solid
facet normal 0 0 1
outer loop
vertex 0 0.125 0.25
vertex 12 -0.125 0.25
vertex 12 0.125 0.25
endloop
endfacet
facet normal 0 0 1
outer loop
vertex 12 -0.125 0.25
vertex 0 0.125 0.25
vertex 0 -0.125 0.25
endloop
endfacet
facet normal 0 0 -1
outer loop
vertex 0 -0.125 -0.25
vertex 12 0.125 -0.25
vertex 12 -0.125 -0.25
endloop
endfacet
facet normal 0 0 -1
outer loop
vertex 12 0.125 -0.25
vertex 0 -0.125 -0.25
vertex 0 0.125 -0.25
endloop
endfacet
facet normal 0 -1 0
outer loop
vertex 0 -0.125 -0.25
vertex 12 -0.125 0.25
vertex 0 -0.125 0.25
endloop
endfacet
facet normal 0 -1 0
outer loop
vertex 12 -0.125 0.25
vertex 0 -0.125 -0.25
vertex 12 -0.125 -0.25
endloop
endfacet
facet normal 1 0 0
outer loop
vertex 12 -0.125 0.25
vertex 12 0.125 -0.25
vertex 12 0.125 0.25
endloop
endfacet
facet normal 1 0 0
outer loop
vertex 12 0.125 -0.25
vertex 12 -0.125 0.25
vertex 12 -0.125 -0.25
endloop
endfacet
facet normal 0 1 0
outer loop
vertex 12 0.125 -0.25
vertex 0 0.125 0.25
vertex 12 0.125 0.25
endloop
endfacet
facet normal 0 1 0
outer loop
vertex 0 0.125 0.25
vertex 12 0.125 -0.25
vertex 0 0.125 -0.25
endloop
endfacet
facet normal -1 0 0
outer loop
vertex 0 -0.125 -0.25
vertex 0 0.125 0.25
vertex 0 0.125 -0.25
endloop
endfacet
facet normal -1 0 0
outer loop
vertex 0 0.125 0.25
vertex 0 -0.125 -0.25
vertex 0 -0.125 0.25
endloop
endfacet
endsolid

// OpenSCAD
module stick() {
  translate([0,-1/8,-1/4])
  cube([12,1/4,1/2]);
}

stick();
